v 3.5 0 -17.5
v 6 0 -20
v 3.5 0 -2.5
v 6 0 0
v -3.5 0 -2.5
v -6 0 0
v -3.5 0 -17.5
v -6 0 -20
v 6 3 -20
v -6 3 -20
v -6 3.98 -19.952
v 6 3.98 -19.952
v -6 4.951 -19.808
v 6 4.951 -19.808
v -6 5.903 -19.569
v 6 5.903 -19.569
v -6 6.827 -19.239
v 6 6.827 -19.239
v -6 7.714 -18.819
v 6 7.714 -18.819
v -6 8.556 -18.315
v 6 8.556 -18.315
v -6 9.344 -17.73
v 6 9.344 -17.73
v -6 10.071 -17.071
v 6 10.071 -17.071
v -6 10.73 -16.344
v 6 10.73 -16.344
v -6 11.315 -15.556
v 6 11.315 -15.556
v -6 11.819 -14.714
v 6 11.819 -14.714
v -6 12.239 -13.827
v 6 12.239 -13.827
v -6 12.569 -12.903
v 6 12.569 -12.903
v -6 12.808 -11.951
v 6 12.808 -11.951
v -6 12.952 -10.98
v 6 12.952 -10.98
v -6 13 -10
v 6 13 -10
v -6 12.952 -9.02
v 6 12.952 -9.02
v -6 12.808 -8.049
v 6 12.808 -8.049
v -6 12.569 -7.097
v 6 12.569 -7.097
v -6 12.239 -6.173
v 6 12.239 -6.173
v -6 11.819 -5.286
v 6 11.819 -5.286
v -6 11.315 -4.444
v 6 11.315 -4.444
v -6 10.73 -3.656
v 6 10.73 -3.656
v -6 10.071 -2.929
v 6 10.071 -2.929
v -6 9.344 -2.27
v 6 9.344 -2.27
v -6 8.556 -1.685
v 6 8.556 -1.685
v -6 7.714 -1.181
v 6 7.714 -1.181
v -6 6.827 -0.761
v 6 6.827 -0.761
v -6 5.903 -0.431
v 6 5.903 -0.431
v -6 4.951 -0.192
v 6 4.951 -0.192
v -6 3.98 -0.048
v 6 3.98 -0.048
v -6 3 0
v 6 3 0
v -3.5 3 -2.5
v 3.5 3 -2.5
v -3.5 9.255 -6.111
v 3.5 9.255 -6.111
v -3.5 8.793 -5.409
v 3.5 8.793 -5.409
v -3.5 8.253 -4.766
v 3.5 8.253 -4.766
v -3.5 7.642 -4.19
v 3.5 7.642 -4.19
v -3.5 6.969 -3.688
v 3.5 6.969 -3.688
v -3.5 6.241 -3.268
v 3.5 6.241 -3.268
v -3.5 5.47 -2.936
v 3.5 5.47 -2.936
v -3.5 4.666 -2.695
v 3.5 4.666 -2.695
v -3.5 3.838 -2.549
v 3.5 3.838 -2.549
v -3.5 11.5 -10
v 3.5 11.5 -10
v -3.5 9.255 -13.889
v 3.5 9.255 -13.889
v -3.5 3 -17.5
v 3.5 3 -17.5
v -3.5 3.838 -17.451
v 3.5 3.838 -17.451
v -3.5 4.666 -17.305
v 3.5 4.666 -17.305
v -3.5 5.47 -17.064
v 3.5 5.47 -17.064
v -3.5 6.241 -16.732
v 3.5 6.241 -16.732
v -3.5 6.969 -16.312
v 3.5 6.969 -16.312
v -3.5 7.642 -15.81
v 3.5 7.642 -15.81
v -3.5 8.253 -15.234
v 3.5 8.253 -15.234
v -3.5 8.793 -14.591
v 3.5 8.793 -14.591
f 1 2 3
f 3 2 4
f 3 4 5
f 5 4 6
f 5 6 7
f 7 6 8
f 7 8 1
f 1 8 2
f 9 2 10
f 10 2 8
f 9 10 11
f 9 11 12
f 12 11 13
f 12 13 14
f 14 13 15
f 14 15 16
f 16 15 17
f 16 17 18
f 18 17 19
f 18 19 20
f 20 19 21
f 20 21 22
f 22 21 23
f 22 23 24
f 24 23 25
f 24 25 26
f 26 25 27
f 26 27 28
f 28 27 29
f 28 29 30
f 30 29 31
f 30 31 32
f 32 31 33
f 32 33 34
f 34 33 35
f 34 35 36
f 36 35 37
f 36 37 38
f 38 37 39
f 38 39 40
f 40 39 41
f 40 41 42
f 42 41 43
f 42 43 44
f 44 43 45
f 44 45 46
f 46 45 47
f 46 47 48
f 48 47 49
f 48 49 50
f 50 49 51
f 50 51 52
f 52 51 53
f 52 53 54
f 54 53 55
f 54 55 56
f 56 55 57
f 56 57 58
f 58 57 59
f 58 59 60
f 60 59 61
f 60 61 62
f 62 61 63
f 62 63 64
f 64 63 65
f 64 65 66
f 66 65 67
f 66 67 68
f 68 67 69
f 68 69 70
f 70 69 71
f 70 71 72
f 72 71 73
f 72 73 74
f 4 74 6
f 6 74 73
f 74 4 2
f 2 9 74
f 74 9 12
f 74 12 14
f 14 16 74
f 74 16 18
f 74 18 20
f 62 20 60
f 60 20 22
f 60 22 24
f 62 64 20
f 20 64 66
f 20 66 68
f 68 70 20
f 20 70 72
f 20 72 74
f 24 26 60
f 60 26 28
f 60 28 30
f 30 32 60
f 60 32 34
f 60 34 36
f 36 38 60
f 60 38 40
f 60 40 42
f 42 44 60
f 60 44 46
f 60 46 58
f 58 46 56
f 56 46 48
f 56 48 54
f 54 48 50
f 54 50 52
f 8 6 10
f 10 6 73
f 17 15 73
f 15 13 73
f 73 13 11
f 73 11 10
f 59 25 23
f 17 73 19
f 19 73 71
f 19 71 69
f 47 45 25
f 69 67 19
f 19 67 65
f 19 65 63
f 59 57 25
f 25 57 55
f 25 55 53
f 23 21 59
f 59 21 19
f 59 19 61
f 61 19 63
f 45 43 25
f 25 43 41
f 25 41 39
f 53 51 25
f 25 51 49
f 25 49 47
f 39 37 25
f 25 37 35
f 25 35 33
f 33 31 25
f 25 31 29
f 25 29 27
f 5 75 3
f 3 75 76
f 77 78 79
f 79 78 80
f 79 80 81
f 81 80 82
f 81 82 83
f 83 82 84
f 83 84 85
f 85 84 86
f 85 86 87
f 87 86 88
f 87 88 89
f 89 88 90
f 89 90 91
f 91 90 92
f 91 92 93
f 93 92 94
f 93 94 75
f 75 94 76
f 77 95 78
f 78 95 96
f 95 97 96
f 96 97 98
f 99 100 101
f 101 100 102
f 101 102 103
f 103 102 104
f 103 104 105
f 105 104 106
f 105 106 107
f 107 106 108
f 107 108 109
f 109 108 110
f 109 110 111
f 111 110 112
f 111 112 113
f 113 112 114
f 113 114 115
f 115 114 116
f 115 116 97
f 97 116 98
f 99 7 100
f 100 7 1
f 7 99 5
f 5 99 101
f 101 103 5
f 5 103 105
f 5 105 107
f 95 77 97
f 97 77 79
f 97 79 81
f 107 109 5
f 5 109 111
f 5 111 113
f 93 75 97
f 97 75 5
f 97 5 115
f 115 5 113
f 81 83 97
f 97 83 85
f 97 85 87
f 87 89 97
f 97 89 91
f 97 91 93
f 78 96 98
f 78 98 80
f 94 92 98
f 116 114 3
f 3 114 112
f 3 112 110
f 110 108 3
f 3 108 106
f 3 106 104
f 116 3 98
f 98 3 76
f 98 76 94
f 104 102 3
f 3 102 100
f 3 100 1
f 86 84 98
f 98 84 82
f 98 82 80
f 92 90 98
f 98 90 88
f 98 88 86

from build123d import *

# Parameters (mm, degrees)
BOSS_EXTRUDE1_DEPTH = 6
CUT_EXTRUDE1_DEPTH  = 3.5


with BuildPart() as part:
    # Sketch1 → Boss-Extrude1 (new body, symmetric)
    with BuildSketch(Plane(origin=(0, 0, 0), x_dir=(0, 0, -1), z_dir=(1, 0, 0))):
        with BuildLine():
            Line((0, 0), (0, 3))
            ThreePointArc((0, 3), (10, 13), (20, 3))
            Line((20, 3), (20, 0))
            Line((20, 0), (0, 0))
        make_face()
    extrude(amount=BOSS_EXTRUDE1_DEPTH, both=True)

    # Sketch2 → Cut-Extrude1 (cut, symmetric)
    with BuildSketch(Plane(origin=(0, 0, 0), x_dir=(0, 0, -1), z_dir=(1, 0, 0))):
        with BuildLine():
            Line((10, 0), (17.5, 0))
            Line((17.5, 0), (17.5, 3))
            ThreePointArc((17.5, 3), (16.532377607, 6.611215932), (13.888784068, 9.254809472))
            Line((13.888784068, 9.254809472), (10, 11.5))
            Line((10, 11.5), (6.111215932, 9.254809472))
            ThreePointArc((6.111215932, 9.254809472), (3.467622393, 6.611215932), (2.5, 3))
            Line((2.5, 3), (2.5, 0))
            Line((2.5, 0), (10, 0))
        make_face()
    extrude(amount=CUT_EXTRUDE1_DEPTH, both=True, mode=Mode.SUBTRACT)


solid = part.part
